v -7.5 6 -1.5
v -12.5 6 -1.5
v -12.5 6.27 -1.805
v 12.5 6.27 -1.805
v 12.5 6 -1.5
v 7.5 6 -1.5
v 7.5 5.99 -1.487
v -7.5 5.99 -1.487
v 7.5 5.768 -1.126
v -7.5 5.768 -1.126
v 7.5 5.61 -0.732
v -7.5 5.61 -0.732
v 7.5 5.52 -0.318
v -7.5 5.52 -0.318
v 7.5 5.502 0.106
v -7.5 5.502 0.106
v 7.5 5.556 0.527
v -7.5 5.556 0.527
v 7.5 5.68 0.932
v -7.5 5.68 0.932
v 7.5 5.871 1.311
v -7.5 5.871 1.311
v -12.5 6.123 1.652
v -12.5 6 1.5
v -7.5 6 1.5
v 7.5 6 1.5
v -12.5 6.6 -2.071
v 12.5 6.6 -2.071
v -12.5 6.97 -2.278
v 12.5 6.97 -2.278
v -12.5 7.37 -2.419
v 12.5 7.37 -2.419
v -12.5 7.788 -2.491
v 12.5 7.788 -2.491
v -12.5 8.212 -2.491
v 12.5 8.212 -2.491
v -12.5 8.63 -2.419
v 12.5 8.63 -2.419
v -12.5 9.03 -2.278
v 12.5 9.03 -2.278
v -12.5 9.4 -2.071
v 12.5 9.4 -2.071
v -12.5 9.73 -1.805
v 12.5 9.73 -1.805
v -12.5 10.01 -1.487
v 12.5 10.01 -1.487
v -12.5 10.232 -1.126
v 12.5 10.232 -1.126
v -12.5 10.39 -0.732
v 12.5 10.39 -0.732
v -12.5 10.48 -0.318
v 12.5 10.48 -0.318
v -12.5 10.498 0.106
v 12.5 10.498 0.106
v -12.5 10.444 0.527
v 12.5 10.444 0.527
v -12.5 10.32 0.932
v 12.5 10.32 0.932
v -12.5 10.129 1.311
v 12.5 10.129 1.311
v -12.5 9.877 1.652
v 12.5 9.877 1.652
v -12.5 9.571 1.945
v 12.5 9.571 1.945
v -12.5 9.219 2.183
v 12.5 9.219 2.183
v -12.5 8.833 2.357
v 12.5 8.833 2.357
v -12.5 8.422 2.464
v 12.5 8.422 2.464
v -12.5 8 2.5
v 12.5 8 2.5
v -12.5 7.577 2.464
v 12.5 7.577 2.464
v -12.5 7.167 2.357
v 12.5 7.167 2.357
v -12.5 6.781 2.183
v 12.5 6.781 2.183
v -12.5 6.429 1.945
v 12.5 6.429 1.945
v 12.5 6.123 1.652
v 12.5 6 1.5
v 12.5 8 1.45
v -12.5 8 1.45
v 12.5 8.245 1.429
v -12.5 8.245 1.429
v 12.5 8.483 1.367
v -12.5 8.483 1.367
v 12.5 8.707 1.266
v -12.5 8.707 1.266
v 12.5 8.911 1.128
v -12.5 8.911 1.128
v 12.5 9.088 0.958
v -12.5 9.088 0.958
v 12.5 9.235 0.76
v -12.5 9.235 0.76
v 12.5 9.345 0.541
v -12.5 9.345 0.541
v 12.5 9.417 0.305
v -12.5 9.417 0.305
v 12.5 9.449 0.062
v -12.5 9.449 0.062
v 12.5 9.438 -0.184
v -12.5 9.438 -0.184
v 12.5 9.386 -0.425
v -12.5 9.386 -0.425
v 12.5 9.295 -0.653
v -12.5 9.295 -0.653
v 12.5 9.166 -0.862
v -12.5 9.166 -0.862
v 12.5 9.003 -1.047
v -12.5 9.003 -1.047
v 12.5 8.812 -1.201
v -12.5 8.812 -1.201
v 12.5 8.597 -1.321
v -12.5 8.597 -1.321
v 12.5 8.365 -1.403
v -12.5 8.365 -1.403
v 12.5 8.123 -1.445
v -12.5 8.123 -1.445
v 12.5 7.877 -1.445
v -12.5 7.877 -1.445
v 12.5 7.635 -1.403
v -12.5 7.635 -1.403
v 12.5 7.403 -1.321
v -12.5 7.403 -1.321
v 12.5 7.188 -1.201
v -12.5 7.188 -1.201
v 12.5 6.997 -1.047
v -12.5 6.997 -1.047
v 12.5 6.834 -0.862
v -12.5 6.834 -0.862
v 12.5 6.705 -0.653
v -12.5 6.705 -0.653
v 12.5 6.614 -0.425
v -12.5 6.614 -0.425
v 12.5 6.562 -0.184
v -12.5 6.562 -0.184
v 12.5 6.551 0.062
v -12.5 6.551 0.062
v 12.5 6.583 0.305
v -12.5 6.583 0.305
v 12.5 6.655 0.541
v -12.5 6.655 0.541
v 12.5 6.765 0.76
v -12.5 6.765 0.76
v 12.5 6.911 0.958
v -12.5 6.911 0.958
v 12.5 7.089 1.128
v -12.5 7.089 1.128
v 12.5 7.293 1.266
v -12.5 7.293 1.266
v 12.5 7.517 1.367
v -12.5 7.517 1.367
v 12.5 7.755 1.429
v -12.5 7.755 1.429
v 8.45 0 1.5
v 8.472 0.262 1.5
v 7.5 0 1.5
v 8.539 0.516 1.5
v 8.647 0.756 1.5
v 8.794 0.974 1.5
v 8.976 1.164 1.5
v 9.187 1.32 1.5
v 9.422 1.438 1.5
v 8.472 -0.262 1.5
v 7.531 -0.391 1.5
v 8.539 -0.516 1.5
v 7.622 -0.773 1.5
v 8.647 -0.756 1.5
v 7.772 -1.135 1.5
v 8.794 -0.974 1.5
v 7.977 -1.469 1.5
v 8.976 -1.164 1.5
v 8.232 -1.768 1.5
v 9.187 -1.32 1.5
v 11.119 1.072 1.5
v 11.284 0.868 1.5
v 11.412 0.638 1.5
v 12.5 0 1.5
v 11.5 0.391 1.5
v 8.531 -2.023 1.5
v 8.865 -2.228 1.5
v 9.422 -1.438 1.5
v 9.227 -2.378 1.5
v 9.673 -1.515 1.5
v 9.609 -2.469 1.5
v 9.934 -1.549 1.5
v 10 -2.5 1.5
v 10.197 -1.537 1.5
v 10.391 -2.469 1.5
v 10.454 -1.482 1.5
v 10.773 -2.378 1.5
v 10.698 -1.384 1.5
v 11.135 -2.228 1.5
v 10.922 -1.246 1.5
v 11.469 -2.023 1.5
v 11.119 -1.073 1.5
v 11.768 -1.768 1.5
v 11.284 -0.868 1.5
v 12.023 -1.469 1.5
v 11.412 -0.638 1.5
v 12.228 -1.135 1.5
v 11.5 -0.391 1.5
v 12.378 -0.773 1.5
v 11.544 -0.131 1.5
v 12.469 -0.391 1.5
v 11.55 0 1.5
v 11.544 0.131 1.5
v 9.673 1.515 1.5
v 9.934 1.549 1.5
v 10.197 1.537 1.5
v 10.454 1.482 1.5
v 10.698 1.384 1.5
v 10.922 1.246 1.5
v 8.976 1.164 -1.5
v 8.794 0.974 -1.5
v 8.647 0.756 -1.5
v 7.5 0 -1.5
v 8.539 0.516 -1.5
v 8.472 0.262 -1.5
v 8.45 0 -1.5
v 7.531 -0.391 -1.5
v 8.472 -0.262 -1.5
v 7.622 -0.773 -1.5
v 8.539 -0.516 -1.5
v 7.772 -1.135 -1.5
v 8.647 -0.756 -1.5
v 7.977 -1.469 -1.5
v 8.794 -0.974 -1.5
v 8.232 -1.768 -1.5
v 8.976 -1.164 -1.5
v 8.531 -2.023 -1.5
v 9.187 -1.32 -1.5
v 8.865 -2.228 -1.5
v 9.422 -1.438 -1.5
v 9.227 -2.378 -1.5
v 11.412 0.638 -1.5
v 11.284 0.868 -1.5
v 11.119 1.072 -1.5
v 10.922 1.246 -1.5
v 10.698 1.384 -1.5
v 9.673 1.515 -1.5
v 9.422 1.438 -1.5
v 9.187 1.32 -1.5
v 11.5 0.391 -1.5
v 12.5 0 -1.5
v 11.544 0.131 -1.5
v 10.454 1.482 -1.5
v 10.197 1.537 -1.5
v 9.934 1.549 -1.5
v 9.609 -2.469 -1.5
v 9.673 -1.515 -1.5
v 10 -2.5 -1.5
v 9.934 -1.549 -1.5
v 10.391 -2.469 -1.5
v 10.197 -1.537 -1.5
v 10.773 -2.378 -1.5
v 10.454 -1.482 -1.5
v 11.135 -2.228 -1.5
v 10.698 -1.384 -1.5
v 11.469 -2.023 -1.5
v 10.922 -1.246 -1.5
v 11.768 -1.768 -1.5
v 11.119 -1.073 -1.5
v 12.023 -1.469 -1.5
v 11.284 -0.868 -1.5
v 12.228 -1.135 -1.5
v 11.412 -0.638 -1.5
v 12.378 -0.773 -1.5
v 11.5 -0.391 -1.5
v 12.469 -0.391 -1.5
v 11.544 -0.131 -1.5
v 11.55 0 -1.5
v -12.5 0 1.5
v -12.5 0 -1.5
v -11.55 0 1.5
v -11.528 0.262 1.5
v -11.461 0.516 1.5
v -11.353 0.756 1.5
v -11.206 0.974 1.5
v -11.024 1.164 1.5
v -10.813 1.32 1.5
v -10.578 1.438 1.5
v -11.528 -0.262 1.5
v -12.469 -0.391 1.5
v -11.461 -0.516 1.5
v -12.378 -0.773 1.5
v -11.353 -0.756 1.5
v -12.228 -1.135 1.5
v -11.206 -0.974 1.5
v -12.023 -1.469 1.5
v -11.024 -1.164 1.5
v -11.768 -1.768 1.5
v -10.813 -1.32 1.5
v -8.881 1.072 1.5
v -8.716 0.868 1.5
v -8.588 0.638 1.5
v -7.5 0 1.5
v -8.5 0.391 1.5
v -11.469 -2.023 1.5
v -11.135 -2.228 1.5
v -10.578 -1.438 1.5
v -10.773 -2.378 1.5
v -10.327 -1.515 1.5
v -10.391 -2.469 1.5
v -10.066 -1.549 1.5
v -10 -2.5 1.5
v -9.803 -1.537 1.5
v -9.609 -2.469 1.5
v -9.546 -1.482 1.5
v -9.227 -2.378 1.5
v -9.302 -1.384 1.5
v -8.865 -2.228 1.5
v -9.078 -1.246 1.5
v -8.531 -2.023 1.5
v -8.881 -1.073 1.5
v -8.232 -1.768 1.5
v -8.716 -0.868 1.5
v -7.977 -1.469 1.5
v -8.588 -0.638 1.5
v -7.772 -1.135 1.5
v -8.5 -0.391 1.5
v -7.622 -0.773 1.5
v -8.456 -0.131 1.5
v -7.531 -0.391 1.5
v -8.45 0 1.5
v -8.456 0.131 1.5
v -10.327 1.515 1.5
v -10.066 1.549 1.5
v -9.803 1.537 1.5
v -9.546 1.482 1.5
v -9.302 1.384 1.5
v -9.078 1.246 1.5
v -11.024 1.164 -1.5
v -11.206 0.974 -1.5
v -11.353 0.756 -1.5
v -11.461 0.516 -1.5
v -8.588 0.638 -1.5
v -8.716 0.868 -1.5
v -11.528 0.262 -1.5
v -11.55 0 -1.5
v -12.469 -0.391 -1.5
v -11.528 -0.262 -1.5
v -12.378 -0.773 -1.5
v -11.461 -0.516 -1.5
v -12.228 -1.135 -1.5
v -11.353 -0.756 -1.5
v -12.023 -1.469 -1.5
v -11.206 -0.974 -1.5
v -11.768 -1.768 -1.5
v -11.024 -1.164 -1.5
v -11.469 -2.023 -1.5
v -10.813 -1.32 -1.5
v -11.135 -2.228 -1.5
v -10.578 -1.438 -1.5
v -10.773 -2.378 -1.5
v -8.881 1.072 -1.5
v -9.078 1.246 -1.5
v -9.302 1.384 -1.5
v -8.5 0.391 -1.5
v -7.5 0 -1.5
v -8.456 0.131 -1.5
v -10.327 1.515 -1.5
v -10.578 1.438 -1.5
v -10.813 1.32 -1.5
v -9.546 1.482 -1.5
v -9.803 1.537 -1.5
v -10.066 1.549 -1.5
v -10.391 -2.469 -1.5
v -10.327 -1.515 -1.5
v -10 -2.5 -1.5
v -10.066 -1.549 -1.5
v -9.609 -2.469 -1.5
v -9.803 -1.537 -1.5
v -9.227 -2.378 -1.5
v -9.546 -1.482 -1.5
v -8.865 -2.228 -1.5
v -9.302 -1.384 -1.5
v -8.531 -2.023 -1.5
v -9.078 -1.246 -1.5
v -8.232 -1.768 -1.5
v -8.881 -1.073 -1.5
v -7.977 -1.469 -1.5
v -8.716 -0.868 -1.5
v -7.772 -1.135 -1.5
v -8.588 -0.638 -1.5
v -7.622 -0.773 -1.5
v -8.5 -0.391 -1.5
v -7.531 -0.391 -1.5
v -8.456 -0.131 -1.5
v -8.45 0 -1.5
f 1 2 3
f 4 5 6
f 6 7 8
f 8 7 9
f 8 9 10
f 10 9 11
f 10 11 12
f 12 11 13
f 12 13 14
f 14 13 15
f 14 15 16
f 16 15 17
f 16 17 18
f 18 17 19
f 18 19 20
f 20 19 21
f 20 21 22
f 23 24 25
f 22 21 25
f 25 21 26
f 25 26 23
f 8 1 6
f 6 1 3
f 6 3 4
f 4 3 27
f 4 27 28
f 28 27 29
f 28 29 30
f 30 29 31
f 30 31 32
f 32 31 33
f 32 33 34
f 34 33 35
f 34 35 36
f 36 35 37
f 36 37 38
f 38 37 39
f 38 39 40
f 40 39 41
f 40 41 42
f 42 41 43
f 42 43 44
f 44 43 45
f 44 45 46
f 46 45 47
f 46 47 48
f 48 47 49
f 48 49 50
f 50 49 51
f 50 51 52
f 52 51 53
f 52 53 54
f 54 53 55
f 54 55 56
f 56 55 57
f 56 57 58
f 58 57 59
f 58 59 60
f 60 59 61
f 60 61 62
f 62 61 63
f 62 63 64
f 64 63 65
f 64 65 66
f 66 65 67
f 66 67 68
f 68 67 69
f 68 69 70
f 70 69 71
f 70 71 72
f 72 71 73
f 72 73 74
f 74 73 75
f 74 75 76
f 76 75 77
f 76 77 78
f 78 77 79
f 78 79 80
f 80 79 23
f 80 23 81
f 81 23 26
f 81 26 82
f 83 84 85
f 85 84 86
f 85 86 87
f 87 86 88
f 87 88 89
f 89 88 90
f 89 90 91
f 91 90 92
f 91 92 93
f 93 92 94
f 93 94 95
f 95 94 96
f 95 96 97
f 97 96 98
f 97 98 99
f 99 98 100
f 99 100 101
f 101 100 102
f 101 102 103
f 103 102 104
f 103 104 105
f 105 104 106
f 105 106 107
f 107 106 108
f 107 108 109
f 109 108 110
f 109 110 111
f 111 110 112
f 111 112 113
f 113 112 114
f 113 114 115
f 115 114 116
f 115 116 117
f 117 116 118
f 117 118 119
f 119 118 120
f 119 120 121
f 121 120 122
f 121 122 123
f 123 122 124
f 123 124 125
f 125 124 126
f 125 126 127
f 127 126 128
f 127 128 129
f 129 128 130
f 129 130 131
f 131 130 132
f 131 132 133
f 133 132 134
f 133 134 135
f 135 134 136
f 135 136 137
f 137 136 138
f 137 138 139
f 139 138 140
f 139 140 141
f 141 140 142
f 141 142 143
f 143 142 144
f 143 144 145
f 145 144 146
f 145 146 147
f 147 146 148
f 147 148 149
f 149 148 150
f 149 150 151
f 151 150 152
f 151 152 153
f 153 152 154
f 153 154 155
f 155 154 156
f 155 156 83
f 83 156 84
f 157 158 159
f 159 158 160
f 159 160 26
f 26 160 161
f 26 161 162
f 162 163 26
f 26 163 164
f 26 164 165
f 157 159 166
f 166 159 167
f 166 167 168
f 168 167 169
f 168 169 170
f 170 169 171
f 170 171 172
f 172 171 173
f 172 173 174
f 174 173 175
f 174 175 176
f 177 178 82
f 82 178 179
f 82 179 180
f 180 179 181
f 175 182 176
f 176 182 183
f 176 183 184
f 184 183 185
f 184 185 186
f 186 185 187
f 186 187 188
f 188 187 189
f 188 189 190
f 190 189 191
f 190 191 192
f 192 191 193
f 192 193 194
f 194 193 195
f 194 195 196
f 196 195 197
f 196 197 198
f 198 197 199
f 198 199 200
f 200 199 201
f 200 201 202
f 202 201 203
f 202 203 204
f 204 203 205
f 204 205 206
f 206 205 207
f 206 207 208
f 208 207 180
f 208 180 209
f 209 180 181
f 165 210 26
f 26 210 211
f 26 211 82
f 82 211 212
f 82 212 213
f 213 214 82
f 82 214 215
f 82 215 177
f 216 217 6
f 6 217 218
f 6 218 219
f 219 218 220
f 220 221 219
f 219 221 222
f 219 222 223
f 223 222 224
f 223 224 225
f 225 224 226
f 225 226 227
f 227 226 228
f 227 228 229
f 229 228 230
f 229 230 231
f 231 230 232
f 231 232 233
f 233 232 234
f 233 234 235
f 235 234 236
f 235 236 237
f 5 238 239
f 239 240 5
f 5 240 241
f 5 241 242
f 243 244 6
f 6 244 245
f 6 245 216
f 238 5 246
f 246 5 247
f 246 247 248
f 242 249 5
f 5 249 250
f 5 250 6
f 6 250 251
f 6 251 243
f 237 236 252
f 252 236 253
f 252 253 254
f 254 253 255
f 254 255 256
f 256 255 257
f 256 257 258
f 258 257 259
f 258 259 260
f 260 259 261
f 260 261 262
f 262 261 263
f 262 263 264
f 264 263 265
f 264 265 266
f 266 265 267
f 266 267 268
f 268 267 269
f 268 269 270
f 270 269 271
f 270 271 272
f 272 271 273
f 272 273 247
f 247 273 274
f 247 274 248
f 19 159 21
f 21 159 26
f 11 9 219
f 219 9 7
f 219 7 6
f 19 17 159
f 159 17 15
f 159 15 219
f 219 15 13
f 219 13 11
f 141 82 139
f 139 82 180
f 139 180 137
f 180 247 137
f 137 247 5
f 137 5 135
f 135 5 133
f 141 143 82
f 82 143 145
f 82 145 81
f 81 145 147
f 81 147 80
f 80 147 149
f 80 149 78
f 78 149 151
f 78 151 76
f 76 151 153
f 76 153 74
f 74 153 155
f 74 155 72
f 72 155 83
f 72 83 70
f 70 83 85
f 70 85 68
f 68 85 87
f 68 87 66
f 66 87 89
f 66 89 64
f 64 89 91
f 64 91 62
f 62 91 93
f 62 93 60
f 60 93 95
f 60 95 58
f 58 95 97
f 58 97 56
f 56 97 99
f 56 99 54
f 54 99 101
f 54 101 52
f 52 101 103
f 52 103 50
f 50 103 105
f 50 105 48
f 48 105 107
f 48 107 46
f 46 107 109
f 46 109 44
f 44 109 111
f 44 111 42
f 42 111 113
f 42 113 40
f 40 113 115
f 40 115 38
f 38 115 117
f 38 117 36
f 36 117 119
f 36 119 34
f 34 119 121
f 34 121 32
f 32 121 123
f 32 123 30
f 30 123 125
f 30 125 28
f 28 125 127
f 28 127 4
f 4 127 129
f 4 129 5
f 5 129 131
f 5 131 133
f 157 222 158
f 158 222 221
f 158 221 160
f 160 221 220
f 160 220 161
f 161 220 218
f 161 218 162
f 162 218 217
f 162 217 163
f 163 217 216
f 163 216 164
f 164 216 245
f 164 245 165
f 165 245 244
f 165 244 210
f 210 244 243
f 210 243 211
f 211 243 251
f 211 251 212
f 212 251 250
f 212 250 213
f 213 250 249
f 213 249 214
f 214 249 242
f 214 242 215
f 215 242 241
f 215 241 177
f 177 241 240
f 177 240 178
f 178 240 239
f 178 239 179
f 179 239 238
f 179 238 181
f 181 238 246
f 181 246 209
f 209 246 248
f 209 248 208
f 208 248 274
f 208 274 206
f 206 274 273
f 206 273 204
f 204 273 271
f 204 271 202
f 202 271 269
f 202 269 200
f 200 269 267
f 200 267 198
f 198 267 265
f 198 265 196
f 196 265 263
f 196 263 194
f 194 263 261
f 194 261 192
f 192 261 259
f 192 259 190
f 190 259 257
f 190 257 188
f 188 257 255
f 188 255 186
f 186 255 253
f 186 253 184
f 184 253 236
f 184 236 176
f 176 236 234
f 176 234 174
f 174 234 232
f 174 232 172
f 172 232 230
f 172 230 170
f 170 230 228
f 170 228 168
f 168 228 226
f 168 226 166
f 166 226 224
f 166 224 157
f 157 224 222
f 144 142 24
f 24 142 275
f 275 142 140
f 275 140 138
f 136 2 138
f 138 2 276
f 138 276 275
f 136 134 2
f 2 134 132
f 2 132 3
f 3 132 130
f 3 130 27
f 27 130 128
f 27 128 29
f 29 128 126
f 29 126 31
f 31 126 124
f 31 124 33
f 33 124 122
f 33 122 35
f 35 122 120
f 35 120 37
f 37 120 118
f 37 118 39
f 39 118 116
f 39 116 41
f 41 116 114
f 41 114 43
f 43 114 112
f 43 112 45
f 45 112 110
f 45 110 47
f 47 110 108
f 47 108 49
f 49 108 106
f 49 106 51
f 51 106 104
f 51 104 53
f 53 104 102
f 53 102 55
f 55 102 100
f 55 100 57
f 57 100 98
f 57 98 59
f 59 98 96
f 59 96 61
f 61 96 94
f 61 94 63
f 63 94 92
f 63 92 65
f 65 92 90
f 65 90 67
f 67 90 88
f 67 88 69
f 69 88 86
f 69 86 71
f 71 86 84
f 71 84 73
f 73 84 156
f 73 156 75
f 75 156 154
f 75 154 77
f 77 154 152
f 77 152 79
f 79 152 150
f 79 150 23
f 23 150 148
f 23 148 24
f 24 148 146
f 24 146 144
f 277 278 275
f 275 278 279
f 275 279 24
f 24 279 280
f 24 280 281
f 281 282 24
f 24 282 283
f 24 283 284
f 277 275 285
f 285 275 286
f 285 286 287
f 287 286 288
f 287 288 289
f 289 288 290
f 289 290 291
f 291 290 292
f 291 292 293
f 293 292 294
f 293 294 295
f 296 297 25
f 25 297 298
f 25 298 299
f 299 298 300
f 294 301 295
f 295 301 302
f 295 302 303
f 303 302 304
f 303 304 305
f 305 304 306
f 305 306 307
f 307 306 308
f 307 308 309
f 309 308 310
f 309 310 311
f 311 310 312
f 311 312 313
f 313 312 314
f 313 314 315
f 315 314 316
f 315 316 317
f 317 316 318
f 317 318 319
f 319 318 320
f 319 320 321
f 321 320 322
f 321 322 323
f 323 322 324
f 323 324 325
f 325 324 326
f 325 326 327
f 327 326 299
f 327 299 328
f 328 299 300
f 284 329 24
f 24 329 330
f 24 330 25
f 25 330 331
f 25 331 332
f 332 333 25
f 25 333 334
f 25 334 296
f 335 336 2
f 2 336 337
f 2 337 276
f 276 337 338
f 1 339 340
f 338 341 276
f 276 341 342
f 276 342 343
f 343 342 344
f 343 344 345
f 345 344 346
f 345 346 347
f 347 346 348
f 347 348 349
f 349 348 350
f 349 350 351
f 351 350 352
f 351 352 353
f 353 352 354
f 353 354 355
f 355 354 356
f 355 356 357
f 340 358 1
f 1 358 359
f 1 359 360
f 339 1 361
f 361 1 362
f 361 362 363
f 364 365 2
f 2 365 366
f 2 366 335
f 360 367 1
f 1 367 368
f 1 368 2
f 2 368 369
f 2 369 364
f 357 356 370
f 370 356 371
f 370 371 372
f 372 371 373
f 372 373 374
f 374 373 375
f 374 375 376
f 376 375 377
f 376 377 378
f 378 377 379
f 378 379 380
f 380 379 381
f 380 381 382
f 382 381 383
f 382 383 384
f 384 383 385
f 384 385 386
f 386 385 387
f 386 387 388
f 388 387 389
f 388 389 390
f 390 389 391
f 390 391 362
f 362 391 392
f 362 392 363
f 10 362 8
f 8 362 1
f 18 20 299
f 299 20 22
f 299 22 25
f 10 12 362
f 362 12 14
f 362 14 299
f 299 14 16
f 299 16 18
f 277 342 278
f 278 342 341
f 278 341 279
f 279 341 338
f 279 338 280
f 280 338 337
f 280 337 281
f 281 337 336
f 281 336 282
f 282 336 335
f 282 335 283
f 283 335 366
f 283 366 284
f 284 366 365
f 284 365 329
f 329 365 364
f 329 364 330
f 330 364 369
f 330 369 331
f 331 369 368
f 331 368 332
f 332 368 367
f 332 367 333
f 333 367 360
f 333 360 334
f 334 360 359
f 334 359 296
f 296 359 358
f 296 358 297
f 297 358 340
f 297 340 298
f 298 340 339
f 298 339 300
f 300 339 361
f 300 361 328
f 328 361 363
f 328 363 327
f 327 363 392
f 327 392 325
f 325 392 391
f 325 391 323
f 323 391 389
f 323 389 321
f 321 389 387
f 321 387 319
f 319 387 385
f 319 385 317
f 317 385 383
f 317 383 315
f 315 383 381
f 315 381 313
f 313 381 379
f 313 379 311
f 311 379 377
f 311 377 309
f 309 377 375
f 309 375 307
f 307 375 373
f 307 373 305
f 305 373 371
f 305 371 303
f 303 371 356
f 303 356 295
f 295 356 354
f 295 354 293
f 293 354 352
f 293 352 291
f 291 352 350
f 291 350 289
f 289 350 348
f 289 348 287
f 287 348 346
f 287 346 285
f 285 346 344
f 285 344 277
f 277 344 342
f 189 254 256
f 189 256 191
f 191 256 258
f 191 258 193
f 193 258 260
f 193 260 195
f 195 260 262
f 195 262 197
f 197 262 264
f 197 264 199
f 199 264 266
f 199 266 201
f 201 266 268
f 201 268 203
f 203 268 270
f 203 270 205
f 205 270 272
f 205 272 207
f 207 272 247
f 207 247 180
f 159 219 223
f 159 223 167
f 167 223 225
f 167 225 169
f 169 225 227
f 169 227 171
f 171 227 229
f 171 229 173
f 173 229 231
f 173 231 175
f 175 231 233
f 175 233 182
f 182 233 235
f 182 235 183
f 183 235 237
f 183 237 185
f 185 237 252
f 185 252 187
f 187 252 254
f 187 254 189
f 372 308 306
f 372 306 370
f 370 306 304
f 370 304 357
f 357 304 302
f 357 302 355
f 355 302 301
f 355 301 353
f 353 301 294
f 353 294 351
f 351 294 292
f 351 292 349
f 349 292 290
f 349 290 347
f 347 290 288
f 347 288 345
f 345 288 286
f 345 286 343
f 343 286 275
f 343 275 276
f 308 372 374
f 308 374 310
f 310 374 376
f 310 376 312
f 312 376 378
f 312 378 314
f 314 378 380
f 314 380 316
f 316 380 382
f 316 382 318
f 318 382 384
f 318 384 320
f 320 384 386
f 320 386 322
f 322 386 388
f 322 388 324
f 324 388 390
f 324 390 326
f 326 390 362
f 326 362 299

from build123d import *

# Parameters (mm, degrees)
SKETCH1_R             = 1.5500000000000012
BOSS_EXTRUDE1_DEPTH   = 1.5
SKETCH1_W             = 4.999999999999998
SKETCH1_H             = 10.5
BOSS_EXTRUDE1_2_DEPTH = 1.5
BOSS_EXTRUDE2_REACH   = 28.292
SKETCH2_R             = 2.500000000000001
SKETCH2_R_2           = 1.45
CUT_EXTRUDE1_DEPTH    = 25
FILLET1_R             = 2.5


with BuildPart() as part:
    # Sketch1 → Boss-Extrude1 (new, symmetric)
    with BuildSketch(Plane.XY):
        Polygon((-12.499999999999993, -2.4999999999999996), (-7.499999999999993, -2.5), (-7.499999999999993, 8), (-12.499999999999993, 8), align=None)
        with Locations((-9.999999999999995, 0)):
            Circle(SKETCH1_R, mode=Mode.SUBTRACT)
    extrude(amount=BOSS_EXTRUDE1_DEPTH, both=True)


with BuildPart() as body_2:
    # Sketch1 → Boss-Extrude1 2 (new, symmetric)
    with BuildSketch(Plane.XY):
        with Locations((10.000000000000007, 2.75)):
            Rectangle(SKETCH1_W, SKETCH1_H)
        with Locations((10.000000000000009, 2.45e-15)):
            Circle(SKETCH1_R, mode=Mode.SUBTRACT)
    extrude(amount=BOSS_EXTRUDE1_2_DEPTH, both=True)

    # Boss-Extrude2: up to this face of the body (flat: up to its plane)
    boss_extrude2_end = Plane(body_2.part.faces().sort_by_distance((12.5, 2.75, 0))[0])
    # Sketch2 → Boss-Extrude2 (add, up to the picked face)
    with BuildSketch(Plane.ZY.offset(12.499999999999993), mode=Mode.PRIVATE) as boss_extrude2_sk1:
        with Locations(Location((0, 8, 0), (0, 0, 306.869897646))):
            Circle(SKETCH2_R)
        with Locations((0, 8)):
            Circle(SKETCH2_R_2, mode=Mode.SUBTRACT)
    boss_extrude2_tool1 = split(extrude(boss_extrude2_sk1.sketch, amount=-BOSS_EXTRUDE2_REACH, mode=Mode.PRIVATE), bisect_by=boss_extrude2_end, keep=Keep.BOTH, mode=Mode.PRIVATE)

    add(part.part)  # Boss-Extrude2 merges part
    add(boss_extrude2_tool1.solids().sort_by(Axis((-12.5, 9.943431, -1.457574), (1, 0, 0)))[0])

    # Sketch2<2> → Cut-Extrude1 (cut)
    with BuildSketch(Plane.ZY.offset(12.499999999999993)):
        with BuildLine():
            Line((-1.4500000000000002, 8), (1.45, 8))
            ThreePointArc((1.45, 8), (9e-17, 9.45), (-1.45, 8))
        make_face()
        with BuildLine():
            ThreePointArc((-1.45, 8), (-2.7e-16, 6.55), (1.45, 8))
            Line((1.45, 8), (-1.4500000000000002, 8))
        make_face()
    extrude(amount=-CUT_EXTRUDE1_DEPTH, mode=Mode.SUBTRACT)

    # Fillet1
    fillet1_edges = [body_2.edges().sort_by_distance(p)[0] for p in [
        (7.500000000000007, -2.5, 0),
        (-7.499999999999993, -2.5, 0),
        (-12.499999999999993, -2.4999999999999996, 0),
        (12.500000000000007, -2.5, 0),
    ]]
    fillet(fillet1_edges, radius=FILLET1_R - 0.0001)  # a hair under: the kernel refuses the full size


solid = body_2.part
